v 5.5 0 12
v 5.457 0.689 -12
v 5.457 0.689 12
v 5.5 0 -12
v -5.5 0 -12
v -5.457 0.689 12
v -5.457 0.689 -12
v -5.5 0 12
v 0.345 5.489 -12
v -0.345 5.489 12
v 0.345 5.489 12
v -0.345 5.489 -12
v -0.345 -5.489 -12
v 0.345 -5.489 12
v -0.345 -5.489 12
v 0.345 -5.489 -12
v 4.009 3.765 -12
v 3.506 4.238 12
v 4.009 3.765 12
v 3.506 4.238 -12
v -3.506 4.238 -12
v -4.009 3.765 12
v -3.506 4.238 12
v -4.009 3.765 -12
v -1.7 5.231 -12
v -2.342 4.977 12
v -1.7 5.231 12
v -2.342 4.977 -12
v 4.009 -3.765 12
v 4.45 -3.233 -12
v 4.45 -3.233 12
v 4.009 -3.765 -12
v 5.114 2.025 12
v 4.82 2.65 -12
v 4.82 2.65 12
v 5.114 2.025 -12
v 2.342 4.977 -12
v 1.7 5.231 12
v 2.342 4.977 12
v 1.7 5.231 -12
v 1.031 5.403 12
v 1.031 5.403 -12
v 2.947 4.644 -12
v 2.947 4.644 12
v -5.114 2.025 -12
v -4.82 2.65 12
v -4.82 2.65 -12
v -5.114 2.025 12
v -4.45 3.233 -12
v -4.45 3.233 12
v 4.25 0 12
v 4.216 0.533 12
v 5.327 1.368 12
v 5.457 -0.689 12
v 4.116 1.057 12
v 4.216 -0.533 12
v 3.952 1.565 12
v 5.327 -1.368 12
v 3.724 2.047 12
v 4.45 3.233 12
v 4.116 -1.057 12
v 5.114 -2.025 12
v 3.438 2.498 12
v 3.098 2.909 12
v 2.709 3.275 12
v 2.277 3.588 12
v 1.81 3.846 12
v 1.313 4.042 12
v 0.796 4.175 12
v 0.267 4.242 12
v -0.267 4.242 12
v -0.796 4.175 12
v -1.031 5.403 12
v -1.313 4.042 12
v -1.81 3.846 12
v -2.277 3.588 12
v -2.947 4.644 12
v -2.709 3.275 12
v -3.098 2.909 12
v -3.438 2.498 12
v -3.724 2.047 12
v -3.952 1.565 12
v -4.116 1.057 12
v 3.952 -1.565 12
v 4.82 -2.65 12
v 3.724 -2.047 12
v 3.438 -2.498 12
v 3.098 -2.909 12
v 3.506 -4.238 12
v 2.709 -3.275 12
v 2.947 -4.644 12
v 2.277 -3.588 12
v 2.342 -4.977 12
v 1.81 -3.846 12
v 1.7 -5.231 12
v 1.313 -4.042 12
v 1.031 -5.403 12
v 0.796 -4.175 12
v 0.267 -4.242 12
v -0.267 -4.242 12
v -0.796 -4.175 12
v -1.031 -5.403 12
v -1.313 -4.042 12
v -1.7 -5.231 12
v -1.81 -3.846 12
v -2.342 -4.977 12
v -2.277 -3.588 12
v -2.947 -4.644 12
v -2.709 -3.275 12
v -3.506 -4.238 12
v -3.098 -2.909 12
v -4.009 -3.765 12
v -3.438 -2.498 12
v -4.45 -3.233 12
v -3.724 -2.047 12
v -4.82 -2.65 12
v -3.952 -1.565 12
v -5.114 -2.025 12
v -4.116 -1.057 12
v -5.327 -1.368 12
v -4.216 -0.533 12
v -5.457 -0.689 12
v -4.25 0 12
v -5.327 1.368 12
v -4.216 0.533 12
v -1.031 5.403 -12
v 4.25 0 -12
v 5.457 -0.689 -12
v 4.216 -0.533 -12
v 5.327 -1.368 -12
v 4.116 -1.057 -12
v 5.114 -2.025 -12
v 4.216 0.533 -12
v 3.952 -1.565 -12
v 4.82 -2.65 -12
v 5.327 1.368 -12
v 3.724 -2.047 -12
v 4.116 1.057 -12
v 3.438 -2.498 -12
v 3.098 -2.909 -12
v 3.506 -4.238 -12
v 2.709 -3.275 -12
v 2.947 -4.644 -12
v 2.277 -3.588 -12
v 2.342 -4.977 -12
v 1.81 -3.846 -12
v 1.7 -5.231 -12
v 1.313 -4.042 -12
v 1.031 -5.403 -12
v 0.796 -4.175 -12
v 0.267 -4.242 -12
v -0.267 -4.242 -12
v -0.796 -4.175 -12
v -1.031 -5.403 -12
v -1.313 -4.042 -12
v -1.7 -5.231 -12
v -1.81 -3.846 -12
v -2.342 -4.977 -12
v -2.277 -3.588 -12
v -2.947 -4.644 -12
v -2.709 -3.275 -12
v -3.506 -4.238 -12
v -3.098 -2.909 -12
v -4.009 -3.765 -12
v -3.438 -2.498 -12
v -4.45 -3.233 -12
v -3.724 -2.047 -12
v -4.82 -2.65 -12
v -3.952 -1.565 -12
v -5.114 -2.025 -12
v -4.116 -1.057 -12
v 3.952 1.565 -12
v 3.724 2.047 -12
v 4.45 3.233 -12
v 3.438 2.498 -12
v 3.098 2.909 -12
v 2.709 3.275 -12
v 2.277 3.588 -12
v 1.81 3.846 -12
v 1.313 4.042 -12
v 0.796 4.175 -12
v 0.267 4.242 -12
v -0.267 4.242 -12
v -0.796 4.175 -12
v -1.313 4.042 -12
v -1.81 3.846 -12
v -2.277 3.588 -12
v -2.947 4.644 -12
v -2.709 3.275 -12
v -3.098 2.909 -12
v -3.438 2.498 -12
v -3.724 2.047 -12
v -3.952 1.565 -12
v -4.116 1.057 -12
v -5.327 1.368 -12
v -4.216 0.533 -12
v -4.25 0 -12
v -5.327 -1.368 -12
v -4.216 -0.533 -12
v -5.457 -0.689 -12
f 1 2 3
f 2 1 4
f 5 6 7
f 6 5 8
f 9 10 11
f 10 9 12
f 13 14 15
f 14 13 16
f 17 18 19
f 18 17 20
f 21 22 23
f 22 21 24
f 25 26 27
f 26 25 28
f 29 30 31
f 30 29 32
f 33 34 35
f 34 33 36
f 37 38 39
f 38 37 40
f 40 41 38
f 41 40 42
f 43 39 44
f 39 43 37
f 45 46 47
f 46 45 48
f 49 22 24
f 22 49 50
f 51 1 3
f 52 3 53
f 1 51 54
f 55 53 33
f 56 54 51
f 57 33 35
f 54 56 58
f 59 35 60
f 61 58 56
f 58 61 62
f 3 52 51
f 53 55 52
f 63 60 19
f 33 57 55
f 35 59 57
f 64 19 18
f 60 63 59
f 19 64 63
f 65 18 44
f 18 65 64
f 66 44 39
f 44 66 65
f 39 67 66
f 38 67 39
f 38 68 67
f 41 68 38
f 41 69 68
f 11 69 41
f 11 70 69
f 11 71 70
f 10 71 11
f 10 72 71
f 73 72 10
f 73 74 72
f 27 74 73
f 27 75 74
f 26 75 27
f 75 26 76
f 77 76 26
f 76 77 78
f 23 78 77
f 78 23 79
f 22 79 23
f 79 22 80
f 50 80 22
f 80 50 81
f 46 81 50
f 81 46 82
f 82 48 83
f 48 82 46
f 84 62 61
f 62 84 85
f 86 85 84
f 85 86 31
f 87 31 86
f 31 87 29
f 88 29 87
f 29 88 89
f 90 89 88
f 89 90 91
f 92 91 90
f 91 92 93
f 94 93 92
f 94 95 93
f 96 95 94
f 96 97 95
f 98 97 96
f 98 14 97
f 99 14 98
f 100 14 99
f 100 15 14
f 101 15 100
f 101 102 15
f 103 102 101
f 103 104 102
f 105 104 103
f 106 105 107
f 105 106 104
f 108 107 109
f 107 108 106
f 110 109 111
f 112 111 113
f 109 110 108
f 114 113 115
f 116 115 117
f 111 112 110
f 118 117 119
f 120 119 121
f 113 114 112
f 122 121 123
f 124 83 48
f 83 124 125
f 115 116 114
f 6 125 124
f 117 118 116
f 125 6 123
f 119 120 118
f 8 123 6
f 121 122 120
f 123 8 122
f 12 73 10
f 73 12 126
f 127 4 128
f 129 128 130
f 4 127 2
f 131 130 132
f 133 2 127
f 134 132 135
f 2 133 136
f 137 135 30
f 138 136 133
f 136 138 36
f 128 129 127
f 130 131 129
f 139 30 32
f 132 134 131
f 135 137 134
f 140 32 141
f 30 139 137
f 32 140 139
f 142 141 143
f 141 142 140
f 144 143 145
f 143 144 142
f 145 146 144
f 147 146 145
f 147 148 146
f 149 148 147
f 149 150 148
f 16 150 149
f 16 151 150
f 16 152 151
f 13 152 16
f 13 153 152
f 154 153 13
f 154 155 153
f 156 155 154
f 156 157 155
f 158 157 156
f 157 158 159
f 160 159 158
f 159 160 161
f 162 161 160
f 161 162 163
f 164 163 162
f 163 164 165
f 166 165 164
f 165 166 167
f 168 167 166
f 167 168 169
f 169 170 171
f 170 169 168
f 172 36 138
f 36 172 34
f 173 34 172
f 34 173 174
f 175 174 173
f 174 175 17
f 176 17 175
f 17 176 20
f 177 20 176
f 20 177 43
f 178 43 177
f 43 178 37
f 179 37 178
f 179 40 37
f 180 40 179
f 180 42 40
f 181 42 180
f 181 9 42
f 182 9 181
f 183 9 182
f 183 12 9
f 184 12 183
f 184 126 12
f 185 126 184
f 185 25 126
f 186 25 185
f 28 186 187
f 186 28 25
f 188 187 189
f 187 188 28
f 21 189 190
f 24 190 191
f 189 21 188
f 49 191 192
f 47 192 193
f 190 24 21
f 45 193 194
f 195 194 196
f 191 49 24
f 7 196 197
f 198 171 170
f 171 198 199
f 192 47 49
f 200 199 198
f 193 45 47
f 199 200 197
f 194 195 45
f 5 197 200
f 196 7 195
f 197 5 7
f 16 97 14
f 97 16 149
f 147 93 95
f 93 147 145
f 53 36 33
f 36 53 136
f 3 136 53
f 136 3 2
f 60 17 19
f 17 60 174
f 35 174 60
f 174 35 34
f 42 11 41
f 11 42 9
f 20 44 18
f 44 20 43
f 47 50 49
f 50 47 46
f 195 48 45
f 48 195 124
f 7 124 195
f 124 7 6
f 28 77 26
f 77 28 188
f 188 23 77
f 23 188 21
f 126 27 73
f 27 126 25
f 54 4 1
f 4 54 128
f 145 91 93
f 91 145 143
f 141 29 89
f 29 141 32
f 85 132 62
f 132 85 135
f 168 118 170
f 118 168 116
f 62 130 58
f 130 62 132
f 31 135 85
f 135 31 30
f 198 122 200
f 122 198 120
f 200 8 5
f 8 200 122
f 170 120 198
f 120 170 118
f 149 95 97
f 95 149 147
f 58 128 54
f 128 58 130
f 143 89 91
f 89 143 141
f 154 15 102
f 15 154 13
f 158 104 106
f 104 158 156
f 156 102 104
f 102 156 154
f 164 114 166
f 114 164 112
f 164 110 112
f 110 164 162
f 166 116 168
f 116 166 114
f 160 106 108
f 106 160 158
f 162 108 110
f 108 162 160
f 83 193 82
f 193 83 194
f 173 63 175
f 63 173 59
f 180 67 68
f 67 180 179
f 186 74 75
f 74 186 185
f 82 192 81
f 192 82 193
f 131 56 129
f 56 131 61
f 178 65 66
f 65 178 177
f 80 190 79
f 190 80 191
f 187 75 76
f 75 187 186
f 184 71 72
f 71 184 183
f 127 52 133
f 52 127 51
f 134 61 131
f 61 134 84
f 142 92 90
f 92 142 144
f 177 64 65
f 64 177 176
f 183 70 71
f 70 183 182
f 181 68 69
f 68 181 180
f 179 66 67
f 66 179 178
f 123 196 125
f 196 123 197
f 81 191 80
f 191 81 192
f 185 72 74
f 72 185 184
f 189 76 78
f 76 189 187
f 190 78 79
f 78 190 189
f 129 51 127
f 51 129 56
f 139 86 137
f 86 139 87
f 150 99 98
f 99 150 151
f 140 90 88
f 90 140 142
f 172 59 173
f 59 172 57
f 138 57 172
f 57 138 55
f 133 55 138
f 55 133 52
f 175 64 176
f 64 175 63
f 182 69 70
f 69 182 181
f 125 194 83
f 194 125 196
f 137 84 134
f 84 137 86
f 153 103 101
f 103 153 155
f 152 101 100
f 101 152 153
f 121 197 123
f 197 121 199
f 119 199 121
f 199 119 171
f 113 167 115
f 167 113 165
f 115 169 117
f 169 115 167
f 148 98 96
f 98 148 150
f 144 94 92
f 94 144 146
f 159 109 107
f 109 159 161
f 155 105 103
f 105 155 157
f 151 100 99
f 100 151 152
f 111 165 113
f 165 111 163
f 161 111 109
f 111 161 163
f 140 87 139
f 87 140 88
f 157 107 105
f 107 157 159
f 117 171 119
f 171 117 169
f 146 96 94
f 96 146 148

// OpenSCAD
$fn = 50;


difference() {
	union() {
		translate(v = [0, 0, -12.0000000000]) {
			cylinder(h = 24, r = 5.5000000000);
		}
	}
	union() {
		translate(v = [0, 0, -100.0000000000]) {
			cylinder(h = 200, r = 4.2500000000);
		}
	}
}
